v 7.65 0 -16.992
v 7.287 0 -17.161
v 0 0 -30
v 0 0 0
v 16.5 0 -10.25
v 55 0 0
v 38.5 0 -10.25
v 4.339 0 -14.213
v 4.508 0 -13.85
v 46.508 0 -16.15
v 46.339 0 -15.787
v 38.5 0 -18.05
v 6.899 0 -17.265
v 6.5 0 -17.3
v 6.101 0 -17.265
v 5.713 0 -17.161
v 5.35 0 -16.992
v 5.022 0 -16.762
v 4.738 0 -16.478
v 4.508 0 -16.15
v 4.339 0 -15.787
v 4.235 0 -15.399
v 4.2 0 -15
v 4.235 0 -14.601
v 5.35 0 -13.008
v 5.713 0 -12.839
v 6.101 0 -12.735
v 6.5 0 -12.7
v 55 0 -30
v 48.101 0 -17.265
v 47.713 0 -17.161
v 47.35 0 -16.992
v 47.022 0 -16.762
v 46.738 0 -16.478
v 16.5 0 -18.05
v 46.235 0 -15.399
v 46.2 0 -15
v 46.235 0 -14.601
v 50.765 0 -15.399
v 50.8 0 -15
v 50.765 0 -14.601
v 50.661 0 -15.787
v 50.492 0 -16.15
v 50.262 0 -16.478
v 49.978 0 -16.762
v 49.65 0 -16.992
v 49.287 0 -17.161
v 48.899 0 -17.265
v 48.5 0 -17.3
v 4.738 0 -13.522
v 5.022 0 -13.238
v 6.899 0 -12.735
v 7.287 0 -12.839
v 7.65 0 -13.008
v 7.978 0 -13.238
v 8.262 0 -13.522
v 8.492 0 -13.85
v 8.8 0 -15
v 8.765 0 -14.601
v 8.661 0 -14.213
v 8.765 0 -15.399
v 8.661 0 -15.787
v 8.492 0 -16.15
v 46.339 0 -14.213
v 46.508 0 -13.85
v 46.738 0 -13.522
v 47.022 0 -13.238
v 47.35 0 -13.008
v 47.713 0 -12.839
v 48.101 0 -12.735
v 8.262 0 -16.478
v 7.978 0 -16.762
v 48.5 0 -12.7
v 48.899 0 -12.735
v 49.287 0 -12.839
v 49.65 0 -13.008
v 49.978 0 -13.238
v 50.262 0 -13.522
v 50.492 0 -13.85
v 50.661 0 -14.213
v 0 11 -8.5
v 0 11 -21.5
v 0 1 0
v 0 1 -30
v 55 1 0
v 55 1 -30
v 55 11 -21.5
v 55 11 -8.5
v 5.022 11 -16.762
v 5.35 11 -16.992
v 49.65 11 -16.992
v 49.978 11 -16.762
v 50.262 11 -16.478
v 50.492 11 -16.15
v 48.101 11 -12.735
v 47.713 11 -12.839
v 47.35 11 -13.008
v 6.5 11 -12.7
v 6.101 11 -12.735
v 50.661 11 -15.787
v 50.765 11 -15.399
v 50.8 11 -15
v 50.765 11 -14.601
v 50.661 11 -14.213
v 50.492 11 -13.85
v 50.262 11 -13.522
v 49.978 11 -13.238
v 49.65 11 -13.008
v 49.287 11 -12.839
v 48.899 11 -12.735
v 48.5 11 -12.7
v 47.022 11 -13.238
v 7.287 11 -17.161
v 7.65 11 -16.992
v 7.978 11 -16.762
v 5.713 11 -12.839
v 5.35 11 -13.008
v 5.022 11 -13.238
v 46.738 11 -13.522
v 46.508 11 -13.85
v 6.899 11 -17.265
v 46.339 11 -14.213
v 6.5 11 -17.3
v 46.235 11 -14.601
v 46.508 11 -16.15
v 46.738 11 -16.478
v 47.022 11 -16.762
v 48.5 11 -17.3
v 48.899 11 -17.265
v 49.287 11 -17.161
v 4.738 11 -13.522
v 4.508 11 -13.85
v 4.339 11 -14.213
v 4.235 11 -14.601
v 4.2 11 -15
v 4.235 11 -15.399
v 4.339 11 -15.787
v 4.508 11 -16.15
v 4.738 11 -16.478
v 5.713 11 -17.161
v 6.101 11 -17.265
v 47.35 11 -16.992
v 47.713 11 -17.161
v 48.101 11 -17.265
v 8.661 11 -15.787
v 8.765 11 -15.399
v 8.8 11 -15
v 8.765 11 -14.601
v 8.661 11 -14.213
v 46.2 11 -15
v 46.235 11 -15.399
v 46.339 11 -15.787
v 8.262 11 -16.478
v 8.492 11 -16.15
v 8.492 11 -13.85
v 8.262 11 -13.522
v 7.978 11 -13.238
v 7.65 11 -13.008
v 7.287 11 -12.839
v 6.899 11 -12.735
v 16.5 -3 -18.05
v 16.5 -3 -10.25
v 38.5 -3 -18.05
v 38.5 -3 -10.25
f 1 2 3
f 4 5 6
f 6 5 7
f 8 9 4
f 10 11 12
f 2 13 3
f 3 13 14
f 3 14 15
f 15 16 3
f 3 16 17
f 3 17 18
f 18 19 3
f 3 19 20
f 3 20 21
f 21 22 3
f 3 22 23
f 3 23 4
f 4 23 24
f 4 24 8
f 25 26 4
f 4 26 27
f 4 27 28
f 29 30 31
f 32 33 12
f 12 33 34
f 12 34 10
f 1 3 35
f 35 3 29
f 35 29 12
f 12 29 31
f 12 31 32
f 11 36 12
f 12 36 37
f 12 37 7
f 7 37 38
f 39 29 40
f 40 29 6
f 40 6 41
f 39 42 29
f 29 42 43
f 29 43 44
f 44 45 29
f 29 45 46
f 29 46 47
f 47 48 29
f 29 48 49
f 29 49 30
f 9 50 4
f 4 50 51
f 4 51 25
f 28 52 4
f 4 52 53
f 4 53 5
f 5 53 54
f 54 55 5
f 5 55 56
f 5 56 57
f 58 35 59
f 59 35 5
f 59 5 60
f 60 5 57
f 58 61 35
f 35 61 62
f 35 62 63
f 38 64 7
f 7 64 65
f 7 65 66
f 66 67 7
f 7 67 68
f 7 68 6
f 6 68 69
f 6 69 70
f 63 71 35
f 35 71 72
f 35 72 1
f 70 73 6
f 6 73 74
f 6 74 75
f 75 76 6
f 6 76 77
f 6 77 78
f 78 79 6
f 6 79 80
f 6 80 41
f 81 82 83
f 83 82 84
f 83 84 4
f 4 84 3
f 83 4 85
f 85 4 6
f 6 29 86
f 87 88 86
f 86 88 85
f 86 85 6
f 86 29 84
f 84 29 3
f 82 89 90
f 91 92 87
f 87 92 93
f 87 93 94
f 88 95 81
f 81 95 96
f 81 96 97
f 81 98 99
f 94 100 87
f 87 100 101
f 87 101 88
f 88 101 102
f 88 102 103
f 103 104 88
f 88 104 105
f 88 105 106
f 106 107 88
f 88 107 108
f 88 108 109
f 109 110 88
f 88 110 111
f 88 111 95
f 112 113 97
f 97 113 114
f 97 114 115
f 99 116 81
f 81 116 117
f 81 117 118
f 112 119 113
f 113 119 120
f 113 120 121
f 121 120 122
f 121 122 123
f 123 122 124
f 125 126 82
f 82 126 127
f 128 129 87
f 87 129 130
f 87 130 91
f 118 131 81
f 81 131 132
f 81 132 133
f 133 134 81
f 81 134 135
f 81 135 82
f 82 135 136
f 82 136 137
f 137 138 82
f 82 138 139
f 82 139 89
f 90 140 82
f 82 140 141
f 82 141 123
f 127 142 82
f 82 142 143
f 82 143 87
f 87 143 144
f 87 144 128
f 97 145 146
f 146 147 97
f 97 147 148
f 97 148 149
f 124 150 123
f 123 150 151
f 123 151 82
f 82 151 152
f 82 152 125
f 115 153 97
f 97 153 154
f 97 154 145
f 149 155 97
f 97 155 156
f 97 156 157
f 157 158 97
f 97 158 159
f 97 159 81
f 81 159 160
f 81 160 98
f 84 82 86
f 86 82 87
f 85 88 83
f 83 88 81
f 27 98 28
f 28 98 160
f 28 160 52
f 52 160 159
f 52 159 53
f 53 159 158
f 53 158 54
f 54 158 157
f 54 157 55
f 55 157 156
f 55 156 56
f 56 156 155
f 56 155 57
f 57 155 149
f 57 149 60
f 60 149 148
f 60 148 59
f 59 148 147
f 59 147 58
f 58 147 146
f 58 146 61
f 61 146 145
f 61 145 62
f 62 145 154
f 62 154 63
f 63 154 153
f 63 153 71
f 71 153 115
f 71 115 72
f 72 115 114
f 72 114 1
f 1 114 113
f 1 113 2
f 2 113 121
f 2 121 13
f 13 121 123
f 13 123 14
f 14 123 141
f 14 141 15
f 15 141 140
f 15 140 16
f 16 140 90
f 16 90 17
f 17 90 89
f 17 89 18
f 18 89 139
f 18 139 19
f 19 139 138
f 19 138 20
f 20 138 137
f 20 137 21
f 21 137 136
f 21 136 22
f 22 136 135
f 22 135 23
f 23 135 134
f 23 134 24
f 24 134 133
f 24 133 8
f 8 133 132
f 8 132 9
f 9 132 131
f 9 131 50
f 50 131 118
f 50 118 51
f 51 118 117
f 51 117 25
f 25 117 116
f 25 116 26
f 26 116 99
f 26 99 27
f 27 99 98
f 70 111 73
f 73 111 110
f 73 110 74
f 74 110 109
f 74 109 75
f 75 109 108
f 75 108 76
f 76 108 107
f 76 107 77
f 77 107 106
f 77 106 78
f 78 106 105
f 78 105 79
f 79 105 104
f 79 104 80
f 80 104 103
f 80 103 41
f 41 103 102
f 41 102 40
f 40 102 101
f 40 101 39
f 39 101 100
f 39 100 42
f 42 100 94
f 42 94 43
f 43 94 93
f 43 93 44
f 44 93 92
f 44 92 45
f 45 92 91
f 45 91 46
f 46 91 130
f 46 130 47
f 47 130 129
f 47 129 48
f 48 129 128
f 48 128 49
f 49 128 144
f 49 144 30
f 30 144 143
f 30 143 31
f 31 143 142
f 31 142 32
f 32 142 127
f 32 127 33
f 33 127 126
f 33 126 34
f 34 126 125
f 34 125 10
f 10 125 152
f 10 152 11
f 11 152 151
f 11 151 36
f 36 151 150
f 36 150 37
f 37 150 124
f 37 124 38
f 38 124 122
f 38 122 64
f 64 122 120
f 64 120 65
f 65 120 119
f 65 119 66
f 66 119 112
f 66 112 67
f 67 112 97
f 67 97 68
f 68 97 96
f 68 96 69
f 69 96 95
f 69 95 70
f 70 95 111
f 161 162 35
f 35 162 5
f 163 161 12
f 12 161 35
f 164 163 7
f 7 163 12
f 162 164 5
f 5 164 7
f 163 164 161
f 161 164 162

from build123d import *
from OCP.BRepFilletAPI import BRepFilletAPI_MakeChamfer

# Parameters (mm, degrees)
SKETCH2_W           = 55
SKETCH2_H           = 30
BOSS_EXTRUDE1_DEPTH = 11
CHAMFER1_SIZE       = 10
CHAMFER1_SIZE2      = 8.5
CUT_EXTRUDE1_REACH  = 65.608
SKETCH3_R           = 2.3
SKETCH4_W           = 22
SKETCH4_H           = 7.8
BOSS_EXTRUDE2_DEPTH = 3


with BuildPart() as part:
    # Sketch2 → Boss-Extrude1 (new body)
    with BuildSketch(Plane(origin=(0, 0, 0), x_dir=(1, 0, 0), z_dir=(0, 1, 0))):
        with Locations((27.5, 15)):
            Rectangle(SKETCH2_W, SKETCH2_H)
    extrude(amount=BOSS_EXTRUDE1_DEPTH)

    # Chamfer1: one chamfer whose edges measure the first distance from different faces: ONE call of the kernel's chamfer builder (chamfer() names one face for all edges)
    chamfer1_edges_1 = [part.edges().sort_by_distance(p)[0] for p in [
        (27.5, 11, -30),
    ]]
    chamfer1_side_1 = [part.faces().sort_by_distance(p)[0] for p in [
        (27.5, 5.5, -30),
    ]]
    chamfer1_edges_2 = [part.edges().sort_by_distance(p)[0] for p in [
        (27.5, 11, 0),
    ]]
    chamfer1_side_2 = [part.faces().sort_by_distance(p)[0] for p in [
        (27.5, 5.5, 0),
    ]]
    chamfer1 = BRepFilletAPI_MakeChamfer(part.part.solid().wrapped)
    for e in chamfer1_edges_1:
        chamfer1.Add(CHAMFER1_SIZE, CHAMFER1_SIZE2, e.wrapped, chamfer1_side_1[0].wrapped)  # the first distance lies on this face
    for e in chamfer1_edges_2:
        chamfer1.Add(CHAMFER1_SIZE, CHAMFER1_SIZE2, e.wrapped, chamfer1_side_2[0].wrapped)  # the first distance lies on this face
    add(Compound.cast(chamfer1.Shape()), mode=Mode.REPLACE)

    # Sketch3 → Cut-Extrude1 (cut, up to next)
    with BuildSketch(Plane(origin=(0, 11, 0), x_dir=(1, 0, 0), z_dir=(0, 1, 0)), mode=Mode.PRIVATE) as cut_extrude1_sk1:
        with Locations(Location((6.5, 15, 0), (0, 0, 270))):
            Circle(SKETCH3_R)
    cut_extrude1_tool1 = extrude(cut_extrude1_sk1.sketch, amount=-CUT_EXTRUDE1_REACH, mode=Mode.PRIVATE) & part.part
    # Sketch3 → Cut-Extrude1 (cut, up to next)
    with BuildSketch(Plane(origin=(0, 11, 0), x_dir=(1, 0, 0), z_dir=(0, 1, 0)), mode=Mode.PRIVATE) as cut_extrude1_sk2:
        with Locations(Location((48.5, 15, 0), (0, 0, 270))):
            Circle(SKETCH3_R)
    cut_extrude1_tool2 = extrude(cut_extrude1_sk2.sketch, amount=-CUT_EXTRUDE1_REACH, mode=Mode.PRIVATE) & part.part
    add(cut_extrude1_tool1.solids().sort_by_distance((6.5, 11, -15))[0], mode=Mode.SUBTRACT)
    add(cut_extrude1_tool2.solids().sort_by_distance((48.5, 11, -15))[0], mode=Mode.SUBTRACT)

    # Sketch4 → Boss-Extrude2 (add)
    with BuildSketch(Plane.XZ):
        with Locations((27.5, -14.15)):
            Rectangle(SKETCH4_W, SKETCH4_H)
    extrude(amount=BOSS_EXTRUDE2_DEPTH)


solid = part.part
